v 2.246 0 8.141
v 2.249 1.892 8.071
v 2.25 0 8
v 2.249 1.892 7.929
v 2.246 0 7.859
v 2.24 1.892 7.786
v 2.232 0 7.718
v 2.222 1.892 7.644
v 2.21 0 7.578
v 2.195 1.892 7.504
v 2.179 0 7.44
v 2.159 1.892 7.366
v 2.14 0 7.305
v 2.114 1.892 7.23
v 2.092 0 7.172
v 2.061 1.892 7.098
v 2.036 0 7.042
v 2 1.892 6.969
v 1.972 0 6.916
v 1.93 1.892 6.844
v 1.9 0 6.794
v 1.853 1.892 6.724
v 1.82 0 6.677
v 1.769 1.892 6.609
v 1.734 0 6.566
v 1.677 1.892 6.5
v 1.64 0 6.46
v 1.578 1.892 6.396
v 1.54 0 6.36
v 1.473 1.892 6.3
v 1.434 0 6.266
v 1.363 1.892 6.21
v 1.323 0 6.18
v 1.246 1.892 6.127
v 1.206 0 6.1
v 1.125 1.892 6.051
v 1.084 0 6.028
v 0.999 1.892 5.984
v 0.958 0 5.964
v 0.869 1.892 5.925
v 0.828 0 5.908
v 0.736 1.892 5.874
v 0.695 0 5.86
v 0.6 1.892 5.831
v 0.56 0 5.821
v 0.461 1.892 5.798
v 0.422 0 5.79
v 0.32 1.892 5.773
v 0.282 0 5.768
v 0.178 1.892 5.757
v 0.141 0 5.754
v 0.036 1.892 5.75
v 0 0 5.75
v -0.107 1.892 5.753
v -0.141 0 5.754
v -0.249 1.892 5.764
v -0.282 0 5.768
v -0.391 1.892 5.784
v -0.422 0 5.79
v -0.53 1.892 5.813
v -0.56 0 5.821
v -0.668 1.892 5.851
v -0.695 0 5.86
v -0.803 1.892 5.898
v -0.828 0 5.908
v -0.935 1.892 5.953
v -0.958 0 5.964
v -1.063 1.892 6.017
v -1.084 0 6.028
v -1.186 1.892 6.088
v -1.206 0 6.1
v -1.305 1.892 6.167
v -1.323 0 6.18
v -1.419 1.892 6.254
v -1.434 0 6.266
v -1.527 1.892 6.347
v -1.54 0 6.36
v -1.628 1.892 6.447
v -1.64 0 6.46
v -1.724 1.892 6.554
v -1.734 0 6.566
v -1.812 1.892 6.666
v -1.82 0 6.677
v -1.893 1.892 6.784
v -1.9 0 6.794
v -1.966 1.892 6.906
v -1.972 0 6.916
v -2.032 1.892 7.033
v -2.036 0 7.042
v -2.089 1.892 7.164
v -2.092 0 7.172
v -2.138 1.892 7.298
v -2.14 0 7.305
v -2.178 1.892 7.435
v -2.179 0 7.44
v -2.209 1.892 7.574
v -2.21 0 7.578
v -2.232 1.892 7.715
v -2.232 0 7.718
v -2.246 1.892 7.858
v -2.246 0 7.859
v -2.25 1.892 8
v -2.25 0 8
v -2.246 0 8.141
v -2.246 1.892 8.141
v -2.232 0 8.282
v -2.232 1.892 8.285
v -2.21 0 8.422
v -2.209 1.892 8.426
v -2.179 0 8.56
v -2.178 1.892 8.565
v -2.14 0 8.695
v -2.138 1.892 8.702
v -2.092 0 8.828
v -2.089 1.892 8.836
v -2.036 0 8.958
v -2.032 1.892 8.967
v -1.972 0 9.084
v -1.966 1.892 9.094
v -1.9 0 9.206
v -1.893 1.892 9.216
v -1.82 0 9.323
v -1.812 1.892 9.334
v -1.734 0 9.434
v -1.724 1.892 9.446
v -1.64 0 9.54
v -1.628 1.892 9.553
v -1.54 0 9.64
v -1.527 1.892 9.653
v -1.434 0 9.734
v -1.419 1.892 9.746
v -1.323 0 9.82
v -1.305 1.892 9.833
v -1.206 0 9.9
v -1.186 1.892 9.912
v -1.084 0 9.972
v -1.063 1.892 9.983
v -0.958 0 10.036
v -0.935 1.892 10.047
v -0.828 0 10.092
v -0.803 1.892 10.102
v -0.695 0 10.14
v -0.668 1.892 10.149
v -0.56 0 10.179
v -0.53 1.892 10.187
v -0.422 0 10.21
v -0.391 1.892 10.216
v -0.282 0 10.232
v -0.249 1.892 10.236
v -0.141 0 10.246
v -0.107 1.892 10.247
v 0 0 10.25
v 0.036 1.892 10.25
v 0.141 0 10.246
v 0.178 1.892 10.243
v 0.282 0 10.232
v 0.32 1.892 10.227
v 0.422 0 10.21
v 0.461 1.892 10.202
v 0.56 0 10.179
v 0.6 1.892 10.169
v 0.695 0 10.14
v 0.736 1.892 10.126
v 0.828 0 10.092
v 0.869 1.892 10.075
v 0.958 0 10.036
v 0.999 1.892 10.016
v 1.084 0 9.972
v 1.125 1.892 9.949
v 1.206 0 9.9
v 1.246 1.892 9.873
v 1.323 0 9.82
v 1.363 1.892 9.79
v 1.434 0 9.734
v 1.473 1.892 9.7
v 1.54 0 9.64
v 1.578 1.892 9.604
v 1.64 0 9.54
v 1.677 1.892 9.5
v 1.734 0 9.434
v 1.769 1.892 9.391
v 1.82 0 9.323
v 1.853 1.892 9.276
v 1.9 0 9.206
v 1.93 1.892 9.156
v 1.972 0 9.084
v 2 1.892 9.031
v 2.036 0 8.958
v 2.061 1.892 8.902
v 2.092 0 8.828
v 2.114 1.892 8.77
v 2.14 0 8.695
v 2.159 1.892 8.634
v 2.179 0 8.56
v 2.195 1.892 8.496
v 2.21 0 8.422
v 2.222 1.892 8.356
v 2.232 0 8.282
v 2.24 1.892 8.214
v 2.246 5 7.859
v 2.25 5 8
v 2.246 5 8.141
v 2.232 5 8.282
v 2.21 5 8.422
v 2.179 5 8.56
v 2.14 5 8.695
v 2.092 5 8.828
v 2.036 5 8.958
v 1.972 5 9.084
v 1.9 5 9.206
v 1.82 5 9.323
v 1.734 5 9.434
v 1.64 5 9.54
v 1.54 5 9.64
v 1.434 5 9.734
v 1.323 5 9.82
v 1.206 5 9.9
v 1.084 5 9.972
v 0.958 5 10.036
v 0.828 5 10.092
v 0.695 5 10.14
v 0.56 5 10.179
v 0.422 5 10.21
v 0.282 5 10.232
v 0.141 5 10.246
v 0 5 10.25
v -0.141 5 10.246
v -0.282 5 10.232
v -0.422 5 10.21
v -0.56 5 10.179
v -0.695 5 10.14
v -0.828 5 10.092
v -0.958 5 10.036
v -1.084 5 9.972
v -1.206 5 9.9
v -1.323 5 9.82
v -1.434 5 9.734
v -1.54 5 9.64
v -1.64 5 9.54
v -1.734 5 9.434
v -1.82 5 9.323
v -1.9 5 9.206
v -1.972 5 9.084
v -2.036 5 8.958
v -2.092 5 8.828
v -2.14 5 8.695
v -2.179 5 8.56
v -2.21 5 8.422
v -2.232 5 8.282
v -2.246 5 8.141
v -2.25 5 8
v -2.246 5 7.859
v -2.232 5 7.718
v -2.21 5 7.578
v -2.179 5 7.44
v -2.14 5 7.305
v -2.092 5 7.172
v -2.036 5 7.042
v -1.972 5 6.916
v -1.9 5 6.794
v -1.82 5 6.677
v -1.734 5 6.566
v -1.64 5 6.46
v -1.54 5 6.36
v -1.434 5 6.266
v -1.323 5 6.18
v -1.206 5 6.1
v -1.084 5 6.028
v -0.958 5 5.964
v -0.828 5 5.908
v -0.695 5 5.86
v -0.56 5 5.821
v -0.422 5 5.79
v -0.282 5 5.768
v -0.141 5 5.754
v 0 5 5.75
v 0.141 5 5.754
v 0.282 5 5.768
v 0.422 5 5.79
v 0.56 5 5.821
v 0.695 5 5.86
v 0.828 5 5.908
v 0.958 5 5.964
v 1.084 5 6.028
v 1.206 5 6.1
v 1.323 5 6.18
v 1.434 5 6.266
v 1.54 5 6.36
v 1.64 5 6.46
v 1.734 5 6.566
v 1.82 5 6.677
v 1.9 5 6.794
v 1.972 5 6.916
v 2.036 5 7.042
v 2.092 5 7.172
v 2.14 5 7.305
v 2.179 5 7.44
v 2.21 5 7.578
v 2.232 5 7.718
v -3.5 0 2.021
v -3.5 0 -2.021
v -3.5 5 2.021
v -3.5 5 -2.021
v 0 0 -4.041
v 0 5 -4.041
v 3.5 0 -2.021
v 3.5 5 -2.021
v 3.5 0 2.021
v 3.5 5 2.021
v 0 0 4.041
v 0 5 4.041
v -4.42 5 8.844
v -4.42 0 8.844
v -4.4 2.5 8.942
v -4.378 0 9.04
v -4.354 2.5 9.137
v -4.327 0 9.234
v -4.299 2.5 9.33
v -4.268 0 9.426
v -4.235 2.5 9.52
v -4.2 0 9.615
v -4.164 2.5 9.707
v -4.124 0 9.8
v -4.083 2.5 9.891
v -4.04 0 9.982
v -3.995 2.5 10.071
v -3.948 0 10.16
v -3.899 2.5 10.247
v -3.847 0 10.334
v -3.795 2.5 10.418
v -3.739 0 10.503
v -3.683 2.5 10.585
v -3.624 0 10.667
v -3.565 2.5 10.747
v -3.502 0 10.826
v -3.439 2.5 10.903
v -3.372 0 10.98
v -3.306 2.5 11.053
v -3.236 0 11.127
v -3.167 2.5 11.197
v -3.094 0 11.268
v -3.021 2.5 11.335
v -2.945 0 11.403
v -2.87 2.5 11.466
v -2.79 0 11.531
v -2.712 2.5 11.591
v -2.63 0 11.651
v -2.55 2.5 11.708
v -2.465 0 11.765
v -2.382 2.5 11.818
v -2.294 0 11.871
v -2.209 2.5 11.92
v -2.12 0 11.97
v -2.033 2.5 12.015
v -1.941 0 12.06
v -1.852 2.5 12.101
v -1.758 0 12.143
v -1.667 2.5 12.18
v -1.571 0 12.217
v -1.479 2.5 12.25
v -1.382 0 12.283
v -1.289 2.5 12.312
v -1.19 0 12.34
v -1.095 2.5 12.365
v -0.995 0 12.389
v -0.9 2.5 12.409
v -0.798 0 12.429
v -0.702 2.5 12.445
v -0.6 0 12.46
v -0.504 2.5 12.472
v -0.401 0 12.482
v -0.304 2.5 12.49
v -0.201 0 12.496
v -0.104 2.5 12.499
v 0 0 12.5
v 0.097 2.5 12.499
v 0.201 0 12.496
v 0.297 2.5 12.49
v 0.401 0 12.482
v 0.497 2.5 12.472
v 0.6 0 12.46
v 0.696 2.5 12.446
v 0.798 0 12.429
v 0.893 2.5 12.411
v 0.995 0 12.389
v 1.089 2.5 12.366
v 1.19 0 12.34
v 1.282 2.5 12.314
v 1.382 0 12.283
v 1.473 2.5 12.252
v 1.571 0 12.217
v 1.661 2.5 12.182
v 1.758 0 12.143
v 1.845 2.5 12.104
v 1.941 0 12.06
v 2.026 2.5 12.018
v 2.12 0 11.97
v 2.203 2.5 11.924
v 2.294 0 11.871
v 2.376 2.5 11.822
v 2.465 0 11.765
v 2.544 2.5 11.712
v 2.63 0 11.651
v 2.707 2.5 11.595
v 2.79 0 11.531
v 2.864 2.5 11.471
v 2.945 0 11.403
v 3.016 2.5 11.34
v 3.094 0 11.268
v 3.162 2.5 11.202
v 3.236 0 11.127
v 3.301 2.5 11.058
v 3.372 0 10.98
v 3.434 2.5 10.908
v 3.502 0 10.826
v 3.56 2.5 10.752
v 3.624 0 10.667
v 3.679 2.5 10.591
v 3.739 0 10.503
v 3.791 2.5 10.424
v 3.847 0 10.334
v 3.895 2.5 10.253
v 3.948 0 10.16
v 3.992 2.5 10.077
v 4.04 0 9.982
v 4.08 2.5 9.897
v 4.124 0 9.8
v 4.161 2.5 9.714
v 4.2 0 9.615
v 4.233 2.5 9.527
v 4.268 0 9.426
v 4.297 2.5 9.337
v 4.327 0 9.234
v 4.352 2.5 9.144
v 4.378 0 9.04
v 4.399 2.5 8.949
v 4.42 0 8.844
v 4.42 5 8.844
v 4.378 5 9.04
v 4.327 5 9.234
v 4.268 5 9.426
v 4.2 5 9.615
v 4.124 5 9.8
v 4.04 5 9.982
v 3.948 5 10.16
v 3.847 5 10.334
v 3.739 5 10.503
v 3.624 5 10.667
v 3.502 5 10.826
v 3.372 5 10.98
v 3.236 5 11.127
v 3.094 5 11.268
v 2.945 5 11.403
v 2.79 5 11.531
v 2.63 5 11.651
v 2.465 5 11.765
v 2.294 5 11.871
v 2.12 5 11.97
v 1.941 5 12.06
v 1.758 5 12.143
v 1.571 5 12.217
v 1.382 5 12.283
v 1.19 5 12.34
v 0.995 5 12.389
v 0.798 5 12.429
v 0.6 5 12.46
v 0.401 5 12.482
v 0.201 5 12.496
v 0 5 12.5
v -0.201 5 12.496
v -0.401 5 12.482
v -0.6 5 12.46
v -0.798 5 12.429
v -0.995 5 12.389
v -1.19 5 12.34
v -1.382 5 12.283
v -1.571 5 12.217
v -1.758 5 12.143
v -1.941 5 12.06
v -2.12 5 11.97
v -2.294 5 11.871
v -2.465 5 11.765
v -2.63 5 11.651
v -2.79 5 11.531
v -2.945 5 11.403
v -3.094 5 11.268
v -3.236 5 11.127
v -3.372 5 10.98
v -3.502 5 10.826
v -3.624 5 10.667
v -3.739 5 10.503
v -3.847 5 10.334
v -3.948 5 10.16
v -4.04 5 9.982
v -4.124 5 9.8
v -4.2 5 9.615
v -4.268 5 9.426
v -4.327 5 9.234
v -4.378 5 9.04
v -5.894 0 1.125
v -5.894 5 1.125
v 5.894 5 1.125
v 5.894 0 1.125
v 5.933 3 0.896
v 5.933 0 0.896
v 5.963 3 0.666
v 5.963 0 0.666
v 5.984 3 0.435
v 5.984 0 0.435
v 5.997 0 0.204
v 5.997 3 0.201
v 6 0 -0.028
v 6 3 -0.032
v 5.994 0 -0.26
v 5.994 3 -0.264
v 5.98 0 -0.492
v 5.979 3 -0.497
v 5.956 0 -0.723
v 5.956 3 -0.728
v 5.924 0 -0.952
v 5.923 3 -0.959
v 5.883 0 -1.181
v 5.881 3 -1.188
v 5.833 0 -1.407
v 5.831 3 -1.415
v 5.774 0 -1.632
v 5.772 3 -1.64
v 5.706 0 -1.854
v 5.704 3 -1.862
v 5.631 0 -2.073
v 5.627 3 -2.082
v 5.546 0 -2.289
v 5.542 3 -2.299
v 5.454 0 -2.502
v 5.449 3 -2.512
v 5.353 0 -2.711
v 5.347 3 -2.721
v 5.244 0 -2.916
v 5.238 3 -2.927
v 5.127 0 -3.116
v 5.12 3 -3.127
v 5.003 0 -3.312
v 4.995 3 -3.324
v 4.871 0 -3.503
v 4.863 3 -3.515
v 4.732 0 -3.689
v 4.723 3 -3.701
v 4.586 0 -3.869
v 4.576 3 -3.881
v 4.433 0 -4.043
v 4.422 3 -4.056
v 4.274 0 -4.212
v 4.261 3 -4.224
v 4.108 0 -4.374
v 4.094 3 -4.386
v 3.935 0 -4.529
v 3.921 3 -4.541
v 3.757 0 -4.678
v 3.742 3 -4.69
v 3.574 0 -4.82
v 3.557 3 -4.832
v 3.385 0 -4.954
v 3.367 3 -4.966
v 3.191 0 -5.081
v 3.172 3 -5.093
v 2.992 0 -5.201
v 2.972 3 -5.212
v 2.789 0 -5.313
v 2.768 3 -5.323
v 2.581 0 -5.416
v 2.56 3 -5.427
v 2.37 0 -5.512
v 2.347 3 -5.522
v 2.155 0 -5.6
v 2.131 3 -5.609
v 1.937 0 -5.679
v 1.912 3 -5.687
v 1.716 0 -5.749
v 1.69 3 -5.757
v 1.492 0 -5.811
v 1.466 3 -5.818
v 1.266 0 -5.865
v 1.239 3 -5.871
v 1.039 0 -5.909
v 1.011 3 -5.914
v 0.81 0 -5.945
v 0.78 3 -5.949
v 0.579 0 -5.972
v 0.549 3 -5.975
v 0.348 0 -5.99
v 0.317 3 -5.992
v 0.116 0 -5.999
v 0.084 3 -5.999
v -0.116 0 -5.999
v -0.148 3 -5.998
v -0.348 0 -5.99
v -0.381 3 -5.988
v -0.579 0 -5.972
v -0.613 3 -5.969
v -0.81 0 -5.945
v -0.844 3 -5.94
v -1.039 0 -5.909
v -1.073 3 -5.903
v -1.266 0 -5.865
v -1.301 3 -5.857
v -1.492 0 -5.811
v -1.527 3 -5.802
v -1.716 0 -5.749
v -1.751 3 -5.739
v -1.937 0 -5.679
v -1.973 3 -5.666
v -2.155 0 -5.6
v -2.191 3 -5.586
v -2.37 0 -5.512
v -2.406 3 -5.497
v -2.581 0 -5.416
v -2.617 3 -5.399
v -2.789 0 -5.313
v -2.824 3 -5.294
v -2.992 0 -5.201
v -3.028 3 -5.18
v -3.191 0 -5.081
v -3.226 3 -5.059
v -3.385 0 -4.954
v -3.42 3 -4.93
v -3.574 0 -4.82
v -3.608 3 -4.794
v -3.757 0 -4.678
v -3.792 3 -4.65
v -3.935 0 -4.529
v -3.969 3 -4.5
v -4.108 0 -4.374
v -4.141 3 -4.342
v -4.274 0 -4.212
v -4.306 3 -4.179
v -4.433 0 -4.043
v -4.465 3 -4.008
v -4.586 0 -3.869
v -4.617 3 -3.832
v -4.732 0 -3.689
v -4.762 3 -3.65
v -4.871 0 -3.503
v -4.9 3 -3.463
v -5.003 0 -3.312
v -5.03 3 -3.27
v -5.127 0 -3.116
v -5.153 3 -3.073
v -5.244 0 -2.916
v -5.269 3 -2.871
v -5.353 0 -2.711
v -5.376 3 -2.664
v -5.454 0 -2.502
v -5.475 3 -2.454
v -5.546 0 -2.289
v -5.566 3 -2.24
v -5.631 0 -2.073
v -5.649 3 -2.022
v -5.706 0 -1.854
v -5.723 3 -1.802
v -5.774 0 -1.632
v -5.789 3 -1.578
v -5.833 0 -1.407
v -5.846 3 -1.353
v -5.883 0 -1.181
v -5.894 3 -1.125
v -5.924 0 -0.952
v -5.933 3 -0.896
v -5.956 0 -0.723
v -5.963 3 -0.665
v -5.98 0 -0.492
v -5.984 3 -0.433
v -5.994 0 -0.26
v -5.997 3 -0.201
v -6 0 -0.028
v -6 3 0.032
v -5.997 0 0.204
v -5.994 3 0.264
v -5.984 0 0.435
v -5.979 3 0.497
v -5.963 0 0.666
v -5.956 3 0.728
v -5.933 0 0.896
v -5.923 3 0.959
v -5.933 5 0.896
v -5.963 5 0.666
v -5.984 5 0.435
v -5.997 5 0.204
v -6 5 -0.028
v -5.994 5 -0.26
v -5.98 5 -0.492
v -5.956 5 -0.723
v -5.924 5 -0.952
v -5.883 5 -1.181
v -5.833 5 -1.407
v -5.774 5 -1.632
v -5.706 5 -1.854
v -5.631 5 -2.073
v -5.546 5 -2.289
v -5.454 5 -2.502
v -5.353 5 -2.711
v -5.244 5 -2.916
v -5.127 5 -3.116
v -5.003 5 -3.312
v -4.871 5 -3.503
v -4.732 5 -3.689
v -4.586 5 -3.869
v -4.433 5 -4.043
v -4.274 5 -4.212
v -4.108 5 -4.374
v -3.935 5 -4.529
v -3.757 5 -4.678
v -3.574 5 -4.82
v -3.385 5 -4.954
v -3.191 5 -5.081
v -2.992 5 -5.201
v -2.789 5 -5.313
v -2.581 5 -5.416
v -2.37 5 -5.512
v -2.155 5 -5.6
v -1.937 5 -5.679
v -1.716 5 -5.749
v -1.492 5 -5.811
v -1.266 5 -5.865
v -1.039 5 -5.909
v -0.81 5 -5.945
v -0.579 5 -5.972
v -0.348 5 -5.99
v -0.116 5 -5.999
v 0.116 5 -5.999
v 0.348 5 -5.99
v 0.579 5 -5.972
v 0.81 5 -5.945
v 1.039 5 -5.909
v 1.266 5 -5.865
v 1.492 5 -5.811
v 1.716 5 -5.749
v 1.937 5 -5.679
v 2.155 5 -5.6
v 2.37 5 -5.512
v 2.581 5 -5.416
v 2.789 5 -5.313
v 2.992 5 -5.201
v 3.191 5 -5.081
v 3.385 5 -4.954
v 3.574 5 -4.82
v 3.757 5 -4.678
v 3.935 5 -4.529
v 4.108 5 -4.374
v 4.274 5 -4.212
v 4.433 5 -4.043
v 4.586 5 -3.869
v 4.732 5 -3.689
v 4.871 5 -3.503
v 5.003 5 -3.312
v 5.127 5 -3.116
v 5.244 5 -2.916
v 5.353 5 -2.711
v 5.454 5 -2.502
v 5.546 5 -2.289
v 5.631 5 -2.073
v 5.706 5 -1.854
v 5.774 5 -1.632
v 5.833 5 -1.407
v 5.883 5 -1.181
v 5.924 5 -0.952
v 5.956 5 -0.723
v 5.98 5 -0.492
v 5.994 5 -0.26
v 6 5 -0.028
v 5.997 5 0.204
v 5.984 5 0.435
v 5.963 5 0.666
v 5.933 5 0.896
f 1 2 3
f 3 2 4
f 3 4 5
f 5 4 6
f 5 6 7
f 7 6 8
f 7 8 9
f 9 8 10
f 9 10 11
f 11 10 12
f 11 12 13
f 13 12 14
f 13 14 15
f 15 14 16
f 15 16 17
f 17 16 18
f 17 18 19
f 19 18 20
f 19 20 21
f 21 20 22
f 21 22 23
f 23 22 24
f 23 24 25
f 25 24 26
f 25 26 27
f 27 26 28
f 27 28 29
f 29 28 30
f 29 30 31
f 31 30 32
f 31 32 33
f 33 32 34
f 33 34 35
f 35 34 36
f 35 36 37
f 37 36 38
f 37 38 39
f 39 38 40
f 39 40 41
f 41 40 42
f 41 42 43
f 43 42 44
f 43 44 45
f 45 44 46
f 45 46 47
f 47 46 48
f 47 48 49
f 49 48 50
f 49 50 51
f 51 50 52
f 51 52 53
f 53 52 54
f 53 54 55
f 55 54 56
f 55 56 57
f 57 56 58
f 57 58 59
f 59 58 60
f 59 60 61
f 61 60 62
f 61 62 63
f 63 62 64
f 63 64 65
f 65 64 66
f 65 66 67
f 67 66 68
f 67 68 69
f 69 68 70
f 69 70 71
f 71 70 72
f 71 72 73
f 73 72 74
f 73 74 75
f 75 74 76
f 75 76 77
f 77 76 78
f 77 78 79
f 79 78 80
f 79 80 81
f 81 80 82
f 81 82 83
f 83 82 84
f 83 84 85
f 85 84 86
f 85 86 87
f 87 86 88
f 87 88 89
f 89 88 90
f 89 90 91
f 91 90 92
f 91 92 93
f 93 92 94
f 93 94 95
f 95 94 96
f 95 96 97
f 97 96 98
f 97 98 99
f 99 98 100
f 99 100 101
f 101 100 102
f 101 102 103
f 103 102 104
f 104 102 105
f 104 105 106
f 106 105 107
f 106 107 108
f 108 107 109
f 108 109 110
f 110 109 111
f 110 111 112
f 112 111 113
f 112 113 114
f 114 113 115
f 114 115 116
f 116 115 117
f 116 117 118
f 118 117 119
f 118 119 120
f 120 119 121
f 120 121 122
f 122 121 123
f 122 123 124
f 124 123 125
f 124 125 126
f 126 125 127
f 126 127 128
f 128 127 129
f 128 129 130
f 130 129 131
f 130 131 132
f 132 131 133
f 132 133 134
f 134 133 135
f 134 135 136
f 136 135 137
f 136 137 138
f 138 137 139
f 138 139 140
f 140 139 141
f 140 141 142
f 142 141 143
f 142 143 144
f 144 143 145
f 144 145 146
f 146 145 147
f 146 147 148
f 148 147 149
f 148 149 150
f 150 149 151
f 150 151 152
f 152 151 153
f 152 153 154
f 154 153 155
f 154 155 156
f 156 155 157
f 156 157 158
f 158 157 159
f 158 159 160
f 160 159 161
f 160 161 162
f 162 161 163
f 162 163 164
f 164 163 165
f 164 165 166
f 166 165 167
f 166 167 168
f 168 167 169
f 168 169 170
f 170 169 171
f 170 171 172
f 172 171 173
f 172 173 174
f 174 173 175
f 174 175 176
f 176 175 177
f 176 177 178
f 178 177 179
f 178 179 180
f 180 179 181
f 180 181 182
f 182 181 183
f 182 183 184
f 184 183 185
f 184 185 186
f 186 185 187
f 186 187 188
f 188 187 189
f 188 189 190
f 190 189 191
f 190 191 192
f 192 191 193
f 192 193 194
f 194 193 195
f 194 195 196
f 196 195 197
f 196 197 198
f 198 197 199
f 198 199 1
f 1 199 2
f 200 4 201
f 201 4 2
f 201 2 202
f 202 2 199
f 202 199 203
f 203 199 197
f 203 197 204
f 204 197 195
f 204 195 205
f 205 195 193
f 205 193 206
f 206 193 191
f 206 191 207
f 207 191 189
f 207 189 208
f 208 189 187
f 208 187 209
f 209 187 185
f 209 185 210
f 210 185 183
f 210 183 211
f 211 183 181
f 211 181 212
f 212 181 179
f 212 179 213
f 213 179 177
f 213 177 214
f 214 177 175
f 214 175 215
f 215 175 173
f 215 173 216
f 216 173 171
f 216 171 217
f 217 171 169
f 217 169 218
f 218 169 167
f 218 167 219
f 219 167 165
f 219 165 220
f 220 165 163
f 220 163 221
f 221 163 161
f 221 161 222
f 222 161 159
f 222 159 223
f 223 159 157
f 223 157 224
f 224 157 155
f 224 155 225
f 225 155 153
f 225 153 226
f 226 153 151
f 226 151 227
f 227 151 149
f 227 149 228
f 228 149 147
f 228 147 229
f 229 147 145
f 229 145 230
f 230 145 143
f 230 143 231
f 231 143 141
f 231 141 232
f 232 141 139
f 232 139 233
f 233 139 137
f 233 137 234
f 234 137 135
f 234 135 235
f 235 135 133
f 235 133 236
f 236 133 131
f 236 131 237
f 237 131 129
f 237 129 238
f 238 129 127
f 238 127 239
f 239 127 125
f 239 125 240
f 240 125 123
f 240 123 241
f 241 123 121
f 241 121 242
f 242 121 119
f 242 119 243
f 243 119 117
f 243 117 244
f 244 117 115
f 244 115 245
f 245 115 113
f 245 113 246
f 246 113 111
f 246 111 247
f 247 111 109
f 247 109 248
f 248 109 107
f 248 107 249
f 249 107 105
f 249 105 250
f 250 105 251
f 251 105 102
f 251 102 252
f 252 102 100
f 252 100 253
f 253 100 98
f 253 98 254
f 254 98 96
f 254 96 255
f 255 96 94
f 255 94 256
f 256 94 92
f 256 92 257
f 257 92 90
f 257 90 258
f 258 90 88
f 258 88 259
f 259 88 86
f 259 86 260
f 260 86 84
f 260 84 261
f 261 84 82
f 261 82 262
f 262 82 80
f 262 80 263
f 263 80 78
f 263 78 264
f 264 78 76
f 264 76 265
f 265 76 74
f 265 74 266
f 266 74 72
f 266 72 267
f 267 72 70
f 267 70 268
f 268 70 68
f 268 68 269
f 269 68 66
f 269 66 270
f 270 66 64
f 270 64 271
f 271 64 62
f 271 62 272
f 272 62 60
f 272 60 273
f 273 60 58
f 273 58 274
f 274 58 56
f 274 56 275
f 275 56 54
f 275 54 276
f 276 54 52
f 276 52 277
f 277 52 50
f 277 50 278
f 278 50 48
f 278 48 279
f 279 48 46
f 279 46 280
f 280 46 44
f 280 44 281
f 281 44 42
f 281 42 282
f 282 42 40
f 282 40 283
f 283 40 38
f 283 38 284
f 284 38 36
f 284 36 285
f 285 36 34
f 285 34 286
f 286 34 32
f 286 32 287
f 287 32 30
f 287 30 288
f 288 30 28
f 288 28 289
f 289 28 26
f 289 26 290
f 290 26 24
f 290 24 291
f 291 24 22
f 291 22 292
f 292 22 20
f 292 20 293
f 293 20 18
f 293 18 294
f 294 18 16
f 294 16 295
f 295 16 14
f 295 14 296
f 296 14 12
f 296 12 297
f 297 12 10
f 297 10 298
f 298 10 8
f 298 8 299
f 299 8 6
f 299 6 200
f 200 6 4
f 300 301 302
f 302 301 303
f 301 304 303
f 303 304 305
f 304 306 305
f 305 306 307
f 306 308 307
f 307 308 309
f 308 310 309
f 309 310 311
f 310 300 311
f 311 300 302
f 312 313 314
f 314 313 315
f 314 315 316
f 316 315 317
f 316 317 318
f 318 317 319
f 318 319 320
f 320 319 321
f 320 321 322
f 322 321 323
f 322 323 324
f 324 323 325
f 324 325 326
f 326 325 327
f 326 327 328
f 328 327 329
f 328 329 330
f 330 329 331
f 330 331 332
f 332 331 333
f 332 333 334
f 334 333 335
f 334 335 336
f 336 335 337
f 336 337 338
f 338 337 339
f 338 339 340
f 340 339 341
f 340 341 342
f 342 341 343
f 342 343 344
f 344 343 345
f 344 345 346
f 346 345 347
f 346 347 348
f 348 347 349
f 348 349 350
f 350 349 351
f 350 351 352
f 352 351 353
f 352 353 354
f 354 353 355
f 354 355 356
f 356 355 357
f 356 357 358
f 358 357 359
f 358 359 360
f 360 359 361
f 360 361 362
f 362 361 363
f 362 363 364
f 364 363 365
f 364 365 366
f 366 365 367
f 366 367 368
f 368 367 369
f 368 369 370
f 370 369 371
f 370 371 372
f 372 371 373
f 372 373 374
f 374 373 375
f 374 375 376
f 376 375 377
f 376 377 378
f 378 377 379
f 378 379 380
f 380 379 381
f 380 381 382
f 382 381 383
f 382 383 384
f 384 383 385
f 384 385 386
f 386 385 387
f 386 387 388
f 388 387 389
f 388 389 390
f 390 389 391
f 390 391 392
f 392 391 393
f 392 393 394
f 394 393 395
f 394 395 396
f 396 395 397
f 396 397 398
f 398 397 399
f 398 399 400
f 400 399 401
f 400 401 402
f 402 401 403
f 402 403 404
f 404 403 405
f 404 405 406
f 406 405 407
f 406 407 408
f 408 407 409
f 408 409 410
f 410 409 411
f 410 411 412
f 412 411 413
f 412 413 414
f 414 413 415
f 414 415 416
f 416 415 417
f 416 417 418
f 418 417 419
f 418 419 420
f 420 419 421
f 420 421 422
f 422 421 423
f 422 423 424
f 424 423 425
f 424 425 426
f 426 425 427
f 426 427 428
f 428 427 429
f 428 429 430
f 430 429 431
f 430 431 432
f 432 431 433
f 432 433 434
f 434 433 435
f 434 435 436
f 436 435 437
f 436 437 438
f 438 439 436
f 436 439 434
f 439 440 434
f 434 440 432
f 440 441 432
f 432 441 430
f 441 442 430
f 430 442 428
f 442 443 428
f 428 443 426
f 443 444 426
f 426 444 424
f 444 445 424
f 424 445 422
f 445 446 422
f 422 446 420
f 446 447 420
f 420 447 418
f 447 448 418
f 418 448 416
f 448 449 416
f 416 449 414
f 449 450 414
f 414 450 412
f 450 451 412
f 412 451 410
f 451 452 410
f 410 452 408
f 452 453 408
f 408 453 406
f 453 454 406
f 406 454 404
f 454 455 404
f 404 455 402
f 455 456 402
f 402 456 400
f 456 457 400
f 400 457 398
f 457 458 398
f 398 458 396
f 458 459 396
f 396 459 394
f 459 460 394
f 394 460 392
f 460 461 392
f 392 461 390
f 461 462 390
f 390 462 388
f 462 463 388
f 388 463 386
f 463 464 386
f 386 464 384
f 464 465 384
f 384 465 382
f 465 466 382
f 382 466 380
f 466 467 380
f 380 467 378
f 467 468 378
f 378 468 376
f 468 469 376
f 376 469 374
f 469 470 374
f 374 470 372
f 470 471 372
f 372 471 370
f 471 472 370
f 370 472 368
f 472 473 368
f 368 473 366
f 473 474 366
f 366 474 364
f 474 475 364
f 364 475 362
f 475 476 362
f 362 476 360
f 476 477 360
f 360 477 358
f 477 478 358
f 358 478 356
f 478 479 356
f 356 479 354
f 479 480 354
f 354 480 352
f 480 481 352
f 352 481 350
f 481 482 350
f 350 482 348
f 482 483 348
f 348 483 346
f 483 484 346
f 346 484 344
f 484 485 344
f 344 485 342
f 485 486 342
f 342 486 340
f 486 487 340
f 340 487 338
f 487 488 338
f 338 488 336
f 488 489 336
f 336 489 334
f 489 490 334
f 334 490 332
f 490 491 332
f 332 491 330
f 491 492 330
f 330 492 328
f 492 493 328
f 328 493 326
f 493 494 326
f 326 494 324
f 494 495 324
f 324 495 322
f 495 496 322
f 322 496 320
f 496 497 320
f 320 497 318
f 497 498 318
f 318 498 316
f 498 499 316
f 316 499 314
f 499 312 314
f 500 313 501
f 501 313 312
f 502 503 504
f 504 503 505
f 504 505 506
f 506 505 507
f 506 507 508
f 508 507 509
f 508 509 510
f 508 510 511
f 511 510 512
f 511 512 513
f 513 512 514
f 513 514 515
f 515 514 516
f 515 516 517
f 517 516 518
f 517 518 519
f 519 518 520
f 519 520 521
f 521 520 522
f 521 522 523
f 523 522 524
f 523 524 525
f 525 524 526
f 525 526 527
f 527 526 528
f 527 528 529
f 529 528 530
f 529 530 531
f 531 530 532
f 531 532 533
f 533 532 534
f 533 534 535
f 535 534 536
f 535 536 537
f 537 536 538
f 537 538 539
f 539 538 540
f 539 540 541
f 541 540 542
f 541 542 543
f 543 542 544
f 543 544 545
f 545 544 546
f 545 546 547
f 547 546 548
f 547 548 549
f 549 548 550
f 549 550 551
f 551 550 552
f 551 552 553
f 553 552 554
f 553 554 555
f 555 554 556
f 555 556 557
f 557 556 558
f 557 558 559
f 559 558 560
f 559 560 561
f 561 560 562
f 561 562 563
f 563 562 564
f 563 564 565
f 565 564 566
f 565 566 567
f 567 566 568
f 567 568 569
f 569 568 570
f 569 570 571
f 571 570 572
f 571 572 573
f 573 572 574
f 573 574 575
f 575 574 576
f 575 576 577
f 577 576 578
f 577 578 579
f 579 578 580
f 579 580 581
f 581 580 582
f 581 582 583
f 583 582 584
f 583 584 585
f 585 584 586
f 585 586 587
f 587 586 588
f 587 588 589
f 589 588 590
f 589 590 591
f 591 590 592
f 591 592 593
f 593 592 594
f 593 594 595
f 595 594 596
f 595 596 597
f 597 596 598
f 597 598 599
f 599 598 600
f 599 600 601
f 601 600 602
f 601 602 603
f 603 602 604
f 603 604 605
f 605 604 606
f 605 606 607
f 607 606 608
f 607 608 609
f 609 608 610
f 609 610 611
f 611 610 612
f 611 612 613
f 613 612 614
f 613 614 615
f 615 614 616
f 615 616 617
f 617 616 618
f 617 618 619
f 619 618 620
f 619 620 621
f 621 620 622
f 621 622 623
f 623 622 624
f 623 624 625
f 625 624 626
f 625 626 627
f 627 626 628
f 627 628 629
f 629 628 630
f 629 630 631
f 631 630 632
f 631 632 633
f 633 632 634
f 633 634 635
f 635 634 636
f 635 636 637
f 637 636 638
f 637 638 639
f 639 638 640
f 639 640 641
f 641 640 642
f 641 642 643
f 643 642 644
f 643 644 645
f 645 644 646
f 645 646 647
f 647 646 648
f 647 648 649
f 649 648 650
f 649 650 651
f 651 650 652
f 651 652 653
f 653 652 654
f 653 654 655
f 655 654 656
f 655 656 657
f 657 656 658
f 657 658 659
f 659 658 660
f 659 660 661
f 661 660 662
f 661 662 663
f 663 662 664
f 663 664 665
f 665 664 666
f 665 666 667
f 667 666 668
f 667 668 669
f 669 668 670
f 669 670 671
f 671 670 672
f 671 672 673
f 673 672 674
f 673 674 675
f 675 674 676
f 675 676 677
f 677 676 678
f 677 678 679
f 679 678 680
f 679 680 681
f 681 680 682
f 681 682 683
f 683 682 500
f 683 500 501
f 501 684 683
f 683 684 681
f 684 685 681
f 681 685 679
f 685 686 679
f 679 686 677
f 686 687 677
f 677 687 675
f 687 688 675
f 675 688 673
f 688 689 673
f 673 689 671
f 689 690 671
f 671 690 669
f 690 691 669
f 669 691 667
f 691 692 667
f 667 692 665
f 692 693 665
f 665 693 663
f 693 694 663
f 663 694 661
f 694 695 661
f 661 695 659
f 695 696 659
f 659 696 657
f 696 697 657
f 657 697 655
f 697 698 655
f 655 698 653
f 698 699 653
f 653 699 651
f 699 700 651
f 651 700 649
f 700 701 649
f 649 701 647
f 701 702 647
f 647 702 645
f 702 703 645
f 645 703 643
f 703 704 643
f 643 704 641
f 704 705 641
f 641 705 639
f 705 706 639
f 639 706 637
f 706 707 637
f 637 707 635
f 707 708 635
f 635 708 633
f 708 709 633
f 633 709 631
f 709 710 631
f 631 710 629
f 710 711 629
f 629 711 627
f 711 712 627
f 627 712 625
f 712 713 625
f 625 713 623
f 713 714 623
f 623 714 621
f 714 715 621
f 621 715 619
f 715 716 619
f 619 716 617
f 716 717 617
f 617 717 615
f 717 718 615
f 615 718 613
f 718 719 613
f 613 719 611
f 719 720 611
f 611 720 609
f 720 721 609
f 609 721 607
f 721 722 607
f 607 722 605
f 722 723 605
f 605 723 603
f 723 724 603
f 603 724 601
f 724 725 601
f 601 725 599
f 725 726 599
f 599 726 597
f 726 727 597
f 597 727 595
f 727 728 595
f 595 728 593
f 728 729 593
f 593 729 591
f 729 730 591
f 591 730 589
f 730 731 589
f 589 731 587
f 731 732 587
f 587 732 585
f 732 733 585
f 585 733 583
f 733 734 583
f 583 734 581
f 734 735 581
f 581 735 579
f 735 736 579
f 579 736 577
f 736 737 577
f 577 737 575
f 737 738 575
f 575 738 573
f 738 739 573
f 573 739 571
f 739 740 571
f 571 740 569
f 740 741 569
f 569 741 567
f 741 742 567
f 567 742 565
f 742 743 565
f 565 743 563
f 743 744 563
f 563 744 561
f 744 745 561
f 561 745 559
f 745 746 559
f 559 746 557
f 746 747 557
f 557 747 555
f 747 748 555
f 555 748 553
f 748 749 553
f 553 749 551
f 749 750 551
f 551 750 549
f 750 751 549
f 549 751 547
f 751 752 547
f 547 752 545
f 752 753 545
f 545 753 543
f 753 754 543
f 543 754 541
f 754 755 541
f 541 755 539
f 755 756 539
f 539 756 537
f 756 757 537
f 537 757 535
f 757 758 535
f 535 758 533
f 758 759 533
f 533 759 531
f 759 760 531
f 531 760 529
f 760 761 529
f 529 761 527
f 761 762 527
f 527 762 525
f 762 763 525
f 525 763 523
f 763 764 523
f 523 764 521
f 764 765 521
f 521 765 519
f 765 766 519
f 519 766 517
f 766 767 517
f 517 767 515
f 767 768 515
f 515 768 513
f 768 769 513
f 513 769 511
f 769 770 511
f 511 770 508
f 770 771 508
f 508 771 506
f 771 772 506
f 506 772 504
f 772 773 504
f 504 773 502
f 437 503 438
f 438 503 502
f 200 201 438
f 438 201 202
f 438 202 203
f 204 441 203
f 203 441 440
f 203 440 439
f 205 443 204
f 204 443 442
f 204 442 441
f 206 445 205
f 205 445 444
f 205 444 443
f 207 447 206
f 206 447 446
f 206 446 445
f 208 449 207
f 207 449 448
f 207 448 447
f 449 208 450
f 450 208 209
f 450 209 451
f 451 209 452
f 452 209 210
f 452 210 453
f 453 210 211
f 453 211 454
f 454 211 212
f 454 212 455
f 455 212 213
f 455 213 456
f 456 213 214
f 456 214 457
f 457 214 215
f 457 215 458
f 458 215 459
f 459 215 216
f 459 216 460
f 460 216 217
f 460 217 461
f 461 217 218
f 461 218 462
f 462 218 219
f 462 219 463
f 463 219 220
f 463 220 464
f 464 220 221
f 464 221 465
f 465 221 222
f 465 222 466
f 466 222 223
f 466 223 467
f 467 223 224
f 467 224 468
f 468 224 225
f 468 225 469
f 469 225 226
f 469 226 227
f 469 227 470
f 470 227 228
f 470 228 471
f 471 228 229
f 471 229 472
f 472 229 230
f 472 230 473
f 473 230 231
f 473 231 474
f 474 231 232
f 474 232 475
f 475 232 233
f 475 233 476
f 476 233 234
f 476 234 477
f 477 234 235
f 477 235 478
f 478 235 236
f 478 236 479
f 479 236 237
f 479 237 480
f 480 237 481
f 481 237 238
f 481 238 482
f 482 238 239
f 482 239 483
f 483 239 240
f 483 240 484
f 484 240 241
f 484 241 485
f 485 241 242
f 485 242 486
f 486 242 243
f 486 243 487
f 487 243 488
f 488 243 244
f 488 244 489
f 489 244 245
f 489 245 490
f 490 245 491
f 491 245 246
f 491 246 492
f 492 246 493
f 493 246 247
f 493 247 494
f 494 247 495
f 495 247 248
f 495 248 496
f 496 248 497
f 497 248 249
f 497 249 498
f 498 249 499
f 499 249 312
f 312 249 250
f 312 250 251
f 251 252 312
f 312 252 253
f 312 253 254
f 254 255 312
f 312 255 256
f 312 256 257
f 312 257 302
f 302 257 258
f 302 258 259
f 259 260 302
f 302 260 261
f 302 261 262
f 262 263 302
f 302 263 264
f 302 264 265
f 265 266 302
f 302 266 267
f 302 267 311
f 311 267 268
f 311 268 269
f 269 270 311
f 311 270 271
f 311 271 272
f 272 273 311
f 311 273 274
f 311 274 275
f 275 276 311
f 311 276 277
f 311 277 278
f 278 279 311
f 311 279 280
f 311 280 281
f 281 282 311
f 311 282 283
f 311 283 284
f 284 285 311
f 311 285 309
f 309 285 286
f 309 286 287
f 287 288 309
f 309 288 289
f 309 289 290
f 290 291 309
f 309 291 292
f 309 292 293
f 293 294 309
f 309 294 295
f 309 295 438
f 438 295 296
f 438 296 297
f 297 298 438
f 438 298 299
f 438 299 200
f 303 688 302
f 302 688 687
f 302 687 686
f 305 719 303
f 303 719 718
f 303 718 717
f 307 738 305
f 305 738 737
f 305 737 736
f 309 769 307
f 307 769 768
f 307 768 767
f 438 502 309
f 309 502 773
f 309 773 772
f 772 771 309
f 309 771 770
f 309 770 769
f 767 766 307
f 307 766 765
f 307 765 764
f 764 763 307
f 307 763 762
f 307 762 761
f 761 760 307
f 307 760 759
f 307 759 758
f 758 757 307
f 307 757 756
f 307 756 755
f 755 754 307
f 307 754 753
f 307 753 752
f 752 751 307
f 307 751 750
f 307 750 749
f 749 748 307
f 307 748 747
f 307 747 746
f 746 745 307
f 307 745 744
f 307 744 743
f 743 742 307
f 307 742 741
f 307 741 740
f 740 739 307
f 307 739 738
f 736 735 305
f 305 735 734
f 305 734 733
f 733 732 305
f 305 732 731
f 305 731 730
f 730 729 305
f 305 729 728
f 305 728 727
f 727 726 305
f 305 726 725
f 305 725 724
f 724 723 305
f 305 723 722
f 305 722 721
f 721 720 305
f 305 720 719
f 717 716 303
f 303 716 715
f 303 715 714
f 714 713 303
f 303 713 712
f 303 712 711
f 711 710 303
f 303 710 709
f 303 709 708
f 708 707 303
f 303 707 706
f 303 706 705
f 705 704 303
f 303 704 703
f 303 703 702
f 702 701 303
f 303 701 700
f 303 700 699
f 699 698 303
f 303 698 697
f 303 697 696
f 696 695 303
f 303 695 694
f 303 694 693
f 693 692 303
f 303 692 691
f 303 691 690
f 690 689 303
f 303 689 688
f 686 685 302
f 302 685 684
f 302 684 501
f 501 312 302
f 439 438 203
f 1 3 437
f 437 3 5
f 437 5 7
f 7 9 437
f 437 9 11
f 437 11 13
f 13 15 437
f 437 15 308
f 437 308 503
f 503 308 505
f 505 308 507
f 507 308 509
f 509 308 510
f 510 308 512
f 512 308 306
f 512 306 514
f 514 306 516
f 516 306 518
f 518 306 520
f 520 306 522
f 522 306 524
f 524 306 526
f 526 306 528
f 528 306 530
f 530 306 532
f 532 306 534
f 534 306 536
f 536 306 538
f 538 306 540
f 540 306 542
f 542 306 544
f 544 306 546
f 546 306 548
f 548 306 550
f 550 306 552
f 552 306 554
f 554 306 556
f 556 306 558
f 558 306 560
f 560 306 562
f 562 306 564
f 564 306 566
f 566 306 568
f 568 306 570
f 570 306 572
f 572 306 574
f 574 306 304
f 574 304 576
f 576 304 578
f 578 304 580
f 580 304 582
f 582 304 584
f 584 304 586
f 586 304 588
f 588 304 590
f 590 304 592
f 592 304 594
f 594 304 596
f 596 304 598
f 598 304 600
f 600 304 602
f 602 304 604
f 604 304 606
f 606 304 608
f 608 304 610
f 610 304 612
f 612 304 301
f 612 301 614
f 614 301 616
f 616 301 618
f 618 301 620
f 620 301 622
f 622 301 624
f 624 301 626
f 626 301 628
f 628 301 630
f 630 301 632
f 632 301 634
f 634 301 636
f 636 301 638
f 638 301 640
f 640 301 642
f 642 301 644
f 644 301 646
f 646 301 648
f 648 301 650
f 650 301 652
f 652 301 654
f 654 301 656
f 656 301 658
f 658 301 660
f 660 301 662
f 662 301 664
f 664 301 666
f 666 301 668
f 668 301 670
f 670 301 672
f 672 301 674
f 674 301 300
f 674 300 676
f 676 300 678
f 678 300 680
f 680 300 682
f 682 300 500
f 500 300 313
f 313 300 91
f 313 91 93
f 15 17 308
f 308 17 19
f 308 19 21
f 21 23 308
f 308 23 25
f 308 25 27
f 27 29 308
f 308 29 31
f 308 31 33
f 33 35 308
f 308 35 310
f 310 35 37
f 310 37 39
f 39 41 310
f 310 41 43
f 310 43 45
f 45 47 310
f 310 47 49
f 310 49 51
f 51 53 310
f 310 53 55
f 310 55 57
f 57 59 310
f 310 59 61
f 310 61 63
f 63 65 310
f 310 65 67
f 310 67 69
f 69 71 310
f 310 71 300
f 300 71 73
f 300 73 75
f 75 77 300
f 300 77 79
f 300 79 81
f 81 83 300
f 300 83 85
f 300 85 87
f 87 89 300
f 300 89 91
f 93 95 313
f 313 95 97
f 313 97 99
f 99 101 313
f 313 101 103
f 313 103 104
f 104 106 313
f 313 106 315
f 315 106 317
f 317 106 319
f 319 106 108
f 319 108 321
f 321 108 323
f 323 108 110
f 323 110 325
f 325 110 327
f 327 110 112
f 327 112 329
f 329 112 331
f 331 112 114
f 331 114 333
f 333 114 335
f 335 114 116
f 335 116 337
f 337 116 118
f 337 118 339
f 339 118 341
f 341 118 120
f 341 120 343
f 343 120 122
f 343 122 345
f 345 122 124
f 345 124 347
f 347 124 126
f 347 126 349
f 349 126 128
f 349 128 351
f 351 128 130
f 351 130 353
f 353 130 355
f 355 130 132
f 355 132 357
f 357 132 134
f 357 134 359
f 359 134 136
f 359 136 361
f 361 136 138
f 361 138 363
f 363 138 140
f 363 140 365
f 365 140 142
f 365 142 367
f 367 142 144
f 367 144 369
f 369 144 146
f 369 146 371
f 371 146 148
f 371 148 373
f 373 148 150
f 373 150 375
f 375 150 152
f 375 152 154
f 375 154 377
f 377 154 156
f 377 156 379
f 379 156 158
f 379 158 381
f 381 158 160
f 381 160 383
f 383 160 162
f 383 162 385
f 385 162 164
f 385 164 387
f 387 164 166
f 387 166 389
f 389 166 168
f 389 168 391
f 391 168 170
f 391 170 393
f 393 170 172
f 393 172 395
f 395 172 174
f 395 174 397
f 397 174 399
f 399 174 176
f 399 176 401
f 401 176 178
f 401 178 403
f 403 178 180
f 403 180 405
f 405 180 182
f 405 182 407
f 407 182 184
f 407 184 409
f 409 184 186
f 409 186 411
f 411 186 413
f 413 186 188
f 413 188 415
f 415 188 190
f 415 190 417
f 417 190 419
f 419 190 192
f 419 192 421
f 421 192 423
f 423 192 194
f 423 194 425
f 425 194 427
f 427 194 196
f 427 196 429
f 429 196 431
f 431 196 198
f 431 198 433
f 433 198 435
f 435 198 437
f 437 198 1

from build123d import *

# Parameters (mm, degrees)
SKETCH1_R           = 2.25
BOSS_EXTRUDE1_DEPTH = 5


with BuildPart() as part:
    # Sketch1 → Boss-Extrude1 (new body)
    with BuildSketch(Plane(origin=(0, 0, 0), x_dir=(1, 0, 0), z_dir=(0, 1, 0))):
        with BuildLine():
            Line((-5.893587617, -1.125), (-4.420190713, -8.84375))
            ThreePointArc((-4.420190713, -8.84375), (0, -12.5), (4.420190713, -8.84375))
            Line((4.420190713, -8.84375), (5.893587617, -1.125))
            ThreePointArc((5.893587617, -1.125), (0, 6), (-5.893587617, -1.125))
        make_face()
        with Locations(Location((0, -8, 0), (0, 0, 270))):
            Circle(SKETCH1_R, mode=Mode.SUBTRACT)
        Polygon((0, 4.041451884), (-3.5, 2.020725942), (-3.5, -2.020725942), (0, -4.041451884), (3.5, -2.020725942), (3.5, 2.020725942), align=None, mode=Mode.SUBTRACT)
    extrude(amount=BOSS_EXTRUDE1_DEPTH)


solid = part.part
